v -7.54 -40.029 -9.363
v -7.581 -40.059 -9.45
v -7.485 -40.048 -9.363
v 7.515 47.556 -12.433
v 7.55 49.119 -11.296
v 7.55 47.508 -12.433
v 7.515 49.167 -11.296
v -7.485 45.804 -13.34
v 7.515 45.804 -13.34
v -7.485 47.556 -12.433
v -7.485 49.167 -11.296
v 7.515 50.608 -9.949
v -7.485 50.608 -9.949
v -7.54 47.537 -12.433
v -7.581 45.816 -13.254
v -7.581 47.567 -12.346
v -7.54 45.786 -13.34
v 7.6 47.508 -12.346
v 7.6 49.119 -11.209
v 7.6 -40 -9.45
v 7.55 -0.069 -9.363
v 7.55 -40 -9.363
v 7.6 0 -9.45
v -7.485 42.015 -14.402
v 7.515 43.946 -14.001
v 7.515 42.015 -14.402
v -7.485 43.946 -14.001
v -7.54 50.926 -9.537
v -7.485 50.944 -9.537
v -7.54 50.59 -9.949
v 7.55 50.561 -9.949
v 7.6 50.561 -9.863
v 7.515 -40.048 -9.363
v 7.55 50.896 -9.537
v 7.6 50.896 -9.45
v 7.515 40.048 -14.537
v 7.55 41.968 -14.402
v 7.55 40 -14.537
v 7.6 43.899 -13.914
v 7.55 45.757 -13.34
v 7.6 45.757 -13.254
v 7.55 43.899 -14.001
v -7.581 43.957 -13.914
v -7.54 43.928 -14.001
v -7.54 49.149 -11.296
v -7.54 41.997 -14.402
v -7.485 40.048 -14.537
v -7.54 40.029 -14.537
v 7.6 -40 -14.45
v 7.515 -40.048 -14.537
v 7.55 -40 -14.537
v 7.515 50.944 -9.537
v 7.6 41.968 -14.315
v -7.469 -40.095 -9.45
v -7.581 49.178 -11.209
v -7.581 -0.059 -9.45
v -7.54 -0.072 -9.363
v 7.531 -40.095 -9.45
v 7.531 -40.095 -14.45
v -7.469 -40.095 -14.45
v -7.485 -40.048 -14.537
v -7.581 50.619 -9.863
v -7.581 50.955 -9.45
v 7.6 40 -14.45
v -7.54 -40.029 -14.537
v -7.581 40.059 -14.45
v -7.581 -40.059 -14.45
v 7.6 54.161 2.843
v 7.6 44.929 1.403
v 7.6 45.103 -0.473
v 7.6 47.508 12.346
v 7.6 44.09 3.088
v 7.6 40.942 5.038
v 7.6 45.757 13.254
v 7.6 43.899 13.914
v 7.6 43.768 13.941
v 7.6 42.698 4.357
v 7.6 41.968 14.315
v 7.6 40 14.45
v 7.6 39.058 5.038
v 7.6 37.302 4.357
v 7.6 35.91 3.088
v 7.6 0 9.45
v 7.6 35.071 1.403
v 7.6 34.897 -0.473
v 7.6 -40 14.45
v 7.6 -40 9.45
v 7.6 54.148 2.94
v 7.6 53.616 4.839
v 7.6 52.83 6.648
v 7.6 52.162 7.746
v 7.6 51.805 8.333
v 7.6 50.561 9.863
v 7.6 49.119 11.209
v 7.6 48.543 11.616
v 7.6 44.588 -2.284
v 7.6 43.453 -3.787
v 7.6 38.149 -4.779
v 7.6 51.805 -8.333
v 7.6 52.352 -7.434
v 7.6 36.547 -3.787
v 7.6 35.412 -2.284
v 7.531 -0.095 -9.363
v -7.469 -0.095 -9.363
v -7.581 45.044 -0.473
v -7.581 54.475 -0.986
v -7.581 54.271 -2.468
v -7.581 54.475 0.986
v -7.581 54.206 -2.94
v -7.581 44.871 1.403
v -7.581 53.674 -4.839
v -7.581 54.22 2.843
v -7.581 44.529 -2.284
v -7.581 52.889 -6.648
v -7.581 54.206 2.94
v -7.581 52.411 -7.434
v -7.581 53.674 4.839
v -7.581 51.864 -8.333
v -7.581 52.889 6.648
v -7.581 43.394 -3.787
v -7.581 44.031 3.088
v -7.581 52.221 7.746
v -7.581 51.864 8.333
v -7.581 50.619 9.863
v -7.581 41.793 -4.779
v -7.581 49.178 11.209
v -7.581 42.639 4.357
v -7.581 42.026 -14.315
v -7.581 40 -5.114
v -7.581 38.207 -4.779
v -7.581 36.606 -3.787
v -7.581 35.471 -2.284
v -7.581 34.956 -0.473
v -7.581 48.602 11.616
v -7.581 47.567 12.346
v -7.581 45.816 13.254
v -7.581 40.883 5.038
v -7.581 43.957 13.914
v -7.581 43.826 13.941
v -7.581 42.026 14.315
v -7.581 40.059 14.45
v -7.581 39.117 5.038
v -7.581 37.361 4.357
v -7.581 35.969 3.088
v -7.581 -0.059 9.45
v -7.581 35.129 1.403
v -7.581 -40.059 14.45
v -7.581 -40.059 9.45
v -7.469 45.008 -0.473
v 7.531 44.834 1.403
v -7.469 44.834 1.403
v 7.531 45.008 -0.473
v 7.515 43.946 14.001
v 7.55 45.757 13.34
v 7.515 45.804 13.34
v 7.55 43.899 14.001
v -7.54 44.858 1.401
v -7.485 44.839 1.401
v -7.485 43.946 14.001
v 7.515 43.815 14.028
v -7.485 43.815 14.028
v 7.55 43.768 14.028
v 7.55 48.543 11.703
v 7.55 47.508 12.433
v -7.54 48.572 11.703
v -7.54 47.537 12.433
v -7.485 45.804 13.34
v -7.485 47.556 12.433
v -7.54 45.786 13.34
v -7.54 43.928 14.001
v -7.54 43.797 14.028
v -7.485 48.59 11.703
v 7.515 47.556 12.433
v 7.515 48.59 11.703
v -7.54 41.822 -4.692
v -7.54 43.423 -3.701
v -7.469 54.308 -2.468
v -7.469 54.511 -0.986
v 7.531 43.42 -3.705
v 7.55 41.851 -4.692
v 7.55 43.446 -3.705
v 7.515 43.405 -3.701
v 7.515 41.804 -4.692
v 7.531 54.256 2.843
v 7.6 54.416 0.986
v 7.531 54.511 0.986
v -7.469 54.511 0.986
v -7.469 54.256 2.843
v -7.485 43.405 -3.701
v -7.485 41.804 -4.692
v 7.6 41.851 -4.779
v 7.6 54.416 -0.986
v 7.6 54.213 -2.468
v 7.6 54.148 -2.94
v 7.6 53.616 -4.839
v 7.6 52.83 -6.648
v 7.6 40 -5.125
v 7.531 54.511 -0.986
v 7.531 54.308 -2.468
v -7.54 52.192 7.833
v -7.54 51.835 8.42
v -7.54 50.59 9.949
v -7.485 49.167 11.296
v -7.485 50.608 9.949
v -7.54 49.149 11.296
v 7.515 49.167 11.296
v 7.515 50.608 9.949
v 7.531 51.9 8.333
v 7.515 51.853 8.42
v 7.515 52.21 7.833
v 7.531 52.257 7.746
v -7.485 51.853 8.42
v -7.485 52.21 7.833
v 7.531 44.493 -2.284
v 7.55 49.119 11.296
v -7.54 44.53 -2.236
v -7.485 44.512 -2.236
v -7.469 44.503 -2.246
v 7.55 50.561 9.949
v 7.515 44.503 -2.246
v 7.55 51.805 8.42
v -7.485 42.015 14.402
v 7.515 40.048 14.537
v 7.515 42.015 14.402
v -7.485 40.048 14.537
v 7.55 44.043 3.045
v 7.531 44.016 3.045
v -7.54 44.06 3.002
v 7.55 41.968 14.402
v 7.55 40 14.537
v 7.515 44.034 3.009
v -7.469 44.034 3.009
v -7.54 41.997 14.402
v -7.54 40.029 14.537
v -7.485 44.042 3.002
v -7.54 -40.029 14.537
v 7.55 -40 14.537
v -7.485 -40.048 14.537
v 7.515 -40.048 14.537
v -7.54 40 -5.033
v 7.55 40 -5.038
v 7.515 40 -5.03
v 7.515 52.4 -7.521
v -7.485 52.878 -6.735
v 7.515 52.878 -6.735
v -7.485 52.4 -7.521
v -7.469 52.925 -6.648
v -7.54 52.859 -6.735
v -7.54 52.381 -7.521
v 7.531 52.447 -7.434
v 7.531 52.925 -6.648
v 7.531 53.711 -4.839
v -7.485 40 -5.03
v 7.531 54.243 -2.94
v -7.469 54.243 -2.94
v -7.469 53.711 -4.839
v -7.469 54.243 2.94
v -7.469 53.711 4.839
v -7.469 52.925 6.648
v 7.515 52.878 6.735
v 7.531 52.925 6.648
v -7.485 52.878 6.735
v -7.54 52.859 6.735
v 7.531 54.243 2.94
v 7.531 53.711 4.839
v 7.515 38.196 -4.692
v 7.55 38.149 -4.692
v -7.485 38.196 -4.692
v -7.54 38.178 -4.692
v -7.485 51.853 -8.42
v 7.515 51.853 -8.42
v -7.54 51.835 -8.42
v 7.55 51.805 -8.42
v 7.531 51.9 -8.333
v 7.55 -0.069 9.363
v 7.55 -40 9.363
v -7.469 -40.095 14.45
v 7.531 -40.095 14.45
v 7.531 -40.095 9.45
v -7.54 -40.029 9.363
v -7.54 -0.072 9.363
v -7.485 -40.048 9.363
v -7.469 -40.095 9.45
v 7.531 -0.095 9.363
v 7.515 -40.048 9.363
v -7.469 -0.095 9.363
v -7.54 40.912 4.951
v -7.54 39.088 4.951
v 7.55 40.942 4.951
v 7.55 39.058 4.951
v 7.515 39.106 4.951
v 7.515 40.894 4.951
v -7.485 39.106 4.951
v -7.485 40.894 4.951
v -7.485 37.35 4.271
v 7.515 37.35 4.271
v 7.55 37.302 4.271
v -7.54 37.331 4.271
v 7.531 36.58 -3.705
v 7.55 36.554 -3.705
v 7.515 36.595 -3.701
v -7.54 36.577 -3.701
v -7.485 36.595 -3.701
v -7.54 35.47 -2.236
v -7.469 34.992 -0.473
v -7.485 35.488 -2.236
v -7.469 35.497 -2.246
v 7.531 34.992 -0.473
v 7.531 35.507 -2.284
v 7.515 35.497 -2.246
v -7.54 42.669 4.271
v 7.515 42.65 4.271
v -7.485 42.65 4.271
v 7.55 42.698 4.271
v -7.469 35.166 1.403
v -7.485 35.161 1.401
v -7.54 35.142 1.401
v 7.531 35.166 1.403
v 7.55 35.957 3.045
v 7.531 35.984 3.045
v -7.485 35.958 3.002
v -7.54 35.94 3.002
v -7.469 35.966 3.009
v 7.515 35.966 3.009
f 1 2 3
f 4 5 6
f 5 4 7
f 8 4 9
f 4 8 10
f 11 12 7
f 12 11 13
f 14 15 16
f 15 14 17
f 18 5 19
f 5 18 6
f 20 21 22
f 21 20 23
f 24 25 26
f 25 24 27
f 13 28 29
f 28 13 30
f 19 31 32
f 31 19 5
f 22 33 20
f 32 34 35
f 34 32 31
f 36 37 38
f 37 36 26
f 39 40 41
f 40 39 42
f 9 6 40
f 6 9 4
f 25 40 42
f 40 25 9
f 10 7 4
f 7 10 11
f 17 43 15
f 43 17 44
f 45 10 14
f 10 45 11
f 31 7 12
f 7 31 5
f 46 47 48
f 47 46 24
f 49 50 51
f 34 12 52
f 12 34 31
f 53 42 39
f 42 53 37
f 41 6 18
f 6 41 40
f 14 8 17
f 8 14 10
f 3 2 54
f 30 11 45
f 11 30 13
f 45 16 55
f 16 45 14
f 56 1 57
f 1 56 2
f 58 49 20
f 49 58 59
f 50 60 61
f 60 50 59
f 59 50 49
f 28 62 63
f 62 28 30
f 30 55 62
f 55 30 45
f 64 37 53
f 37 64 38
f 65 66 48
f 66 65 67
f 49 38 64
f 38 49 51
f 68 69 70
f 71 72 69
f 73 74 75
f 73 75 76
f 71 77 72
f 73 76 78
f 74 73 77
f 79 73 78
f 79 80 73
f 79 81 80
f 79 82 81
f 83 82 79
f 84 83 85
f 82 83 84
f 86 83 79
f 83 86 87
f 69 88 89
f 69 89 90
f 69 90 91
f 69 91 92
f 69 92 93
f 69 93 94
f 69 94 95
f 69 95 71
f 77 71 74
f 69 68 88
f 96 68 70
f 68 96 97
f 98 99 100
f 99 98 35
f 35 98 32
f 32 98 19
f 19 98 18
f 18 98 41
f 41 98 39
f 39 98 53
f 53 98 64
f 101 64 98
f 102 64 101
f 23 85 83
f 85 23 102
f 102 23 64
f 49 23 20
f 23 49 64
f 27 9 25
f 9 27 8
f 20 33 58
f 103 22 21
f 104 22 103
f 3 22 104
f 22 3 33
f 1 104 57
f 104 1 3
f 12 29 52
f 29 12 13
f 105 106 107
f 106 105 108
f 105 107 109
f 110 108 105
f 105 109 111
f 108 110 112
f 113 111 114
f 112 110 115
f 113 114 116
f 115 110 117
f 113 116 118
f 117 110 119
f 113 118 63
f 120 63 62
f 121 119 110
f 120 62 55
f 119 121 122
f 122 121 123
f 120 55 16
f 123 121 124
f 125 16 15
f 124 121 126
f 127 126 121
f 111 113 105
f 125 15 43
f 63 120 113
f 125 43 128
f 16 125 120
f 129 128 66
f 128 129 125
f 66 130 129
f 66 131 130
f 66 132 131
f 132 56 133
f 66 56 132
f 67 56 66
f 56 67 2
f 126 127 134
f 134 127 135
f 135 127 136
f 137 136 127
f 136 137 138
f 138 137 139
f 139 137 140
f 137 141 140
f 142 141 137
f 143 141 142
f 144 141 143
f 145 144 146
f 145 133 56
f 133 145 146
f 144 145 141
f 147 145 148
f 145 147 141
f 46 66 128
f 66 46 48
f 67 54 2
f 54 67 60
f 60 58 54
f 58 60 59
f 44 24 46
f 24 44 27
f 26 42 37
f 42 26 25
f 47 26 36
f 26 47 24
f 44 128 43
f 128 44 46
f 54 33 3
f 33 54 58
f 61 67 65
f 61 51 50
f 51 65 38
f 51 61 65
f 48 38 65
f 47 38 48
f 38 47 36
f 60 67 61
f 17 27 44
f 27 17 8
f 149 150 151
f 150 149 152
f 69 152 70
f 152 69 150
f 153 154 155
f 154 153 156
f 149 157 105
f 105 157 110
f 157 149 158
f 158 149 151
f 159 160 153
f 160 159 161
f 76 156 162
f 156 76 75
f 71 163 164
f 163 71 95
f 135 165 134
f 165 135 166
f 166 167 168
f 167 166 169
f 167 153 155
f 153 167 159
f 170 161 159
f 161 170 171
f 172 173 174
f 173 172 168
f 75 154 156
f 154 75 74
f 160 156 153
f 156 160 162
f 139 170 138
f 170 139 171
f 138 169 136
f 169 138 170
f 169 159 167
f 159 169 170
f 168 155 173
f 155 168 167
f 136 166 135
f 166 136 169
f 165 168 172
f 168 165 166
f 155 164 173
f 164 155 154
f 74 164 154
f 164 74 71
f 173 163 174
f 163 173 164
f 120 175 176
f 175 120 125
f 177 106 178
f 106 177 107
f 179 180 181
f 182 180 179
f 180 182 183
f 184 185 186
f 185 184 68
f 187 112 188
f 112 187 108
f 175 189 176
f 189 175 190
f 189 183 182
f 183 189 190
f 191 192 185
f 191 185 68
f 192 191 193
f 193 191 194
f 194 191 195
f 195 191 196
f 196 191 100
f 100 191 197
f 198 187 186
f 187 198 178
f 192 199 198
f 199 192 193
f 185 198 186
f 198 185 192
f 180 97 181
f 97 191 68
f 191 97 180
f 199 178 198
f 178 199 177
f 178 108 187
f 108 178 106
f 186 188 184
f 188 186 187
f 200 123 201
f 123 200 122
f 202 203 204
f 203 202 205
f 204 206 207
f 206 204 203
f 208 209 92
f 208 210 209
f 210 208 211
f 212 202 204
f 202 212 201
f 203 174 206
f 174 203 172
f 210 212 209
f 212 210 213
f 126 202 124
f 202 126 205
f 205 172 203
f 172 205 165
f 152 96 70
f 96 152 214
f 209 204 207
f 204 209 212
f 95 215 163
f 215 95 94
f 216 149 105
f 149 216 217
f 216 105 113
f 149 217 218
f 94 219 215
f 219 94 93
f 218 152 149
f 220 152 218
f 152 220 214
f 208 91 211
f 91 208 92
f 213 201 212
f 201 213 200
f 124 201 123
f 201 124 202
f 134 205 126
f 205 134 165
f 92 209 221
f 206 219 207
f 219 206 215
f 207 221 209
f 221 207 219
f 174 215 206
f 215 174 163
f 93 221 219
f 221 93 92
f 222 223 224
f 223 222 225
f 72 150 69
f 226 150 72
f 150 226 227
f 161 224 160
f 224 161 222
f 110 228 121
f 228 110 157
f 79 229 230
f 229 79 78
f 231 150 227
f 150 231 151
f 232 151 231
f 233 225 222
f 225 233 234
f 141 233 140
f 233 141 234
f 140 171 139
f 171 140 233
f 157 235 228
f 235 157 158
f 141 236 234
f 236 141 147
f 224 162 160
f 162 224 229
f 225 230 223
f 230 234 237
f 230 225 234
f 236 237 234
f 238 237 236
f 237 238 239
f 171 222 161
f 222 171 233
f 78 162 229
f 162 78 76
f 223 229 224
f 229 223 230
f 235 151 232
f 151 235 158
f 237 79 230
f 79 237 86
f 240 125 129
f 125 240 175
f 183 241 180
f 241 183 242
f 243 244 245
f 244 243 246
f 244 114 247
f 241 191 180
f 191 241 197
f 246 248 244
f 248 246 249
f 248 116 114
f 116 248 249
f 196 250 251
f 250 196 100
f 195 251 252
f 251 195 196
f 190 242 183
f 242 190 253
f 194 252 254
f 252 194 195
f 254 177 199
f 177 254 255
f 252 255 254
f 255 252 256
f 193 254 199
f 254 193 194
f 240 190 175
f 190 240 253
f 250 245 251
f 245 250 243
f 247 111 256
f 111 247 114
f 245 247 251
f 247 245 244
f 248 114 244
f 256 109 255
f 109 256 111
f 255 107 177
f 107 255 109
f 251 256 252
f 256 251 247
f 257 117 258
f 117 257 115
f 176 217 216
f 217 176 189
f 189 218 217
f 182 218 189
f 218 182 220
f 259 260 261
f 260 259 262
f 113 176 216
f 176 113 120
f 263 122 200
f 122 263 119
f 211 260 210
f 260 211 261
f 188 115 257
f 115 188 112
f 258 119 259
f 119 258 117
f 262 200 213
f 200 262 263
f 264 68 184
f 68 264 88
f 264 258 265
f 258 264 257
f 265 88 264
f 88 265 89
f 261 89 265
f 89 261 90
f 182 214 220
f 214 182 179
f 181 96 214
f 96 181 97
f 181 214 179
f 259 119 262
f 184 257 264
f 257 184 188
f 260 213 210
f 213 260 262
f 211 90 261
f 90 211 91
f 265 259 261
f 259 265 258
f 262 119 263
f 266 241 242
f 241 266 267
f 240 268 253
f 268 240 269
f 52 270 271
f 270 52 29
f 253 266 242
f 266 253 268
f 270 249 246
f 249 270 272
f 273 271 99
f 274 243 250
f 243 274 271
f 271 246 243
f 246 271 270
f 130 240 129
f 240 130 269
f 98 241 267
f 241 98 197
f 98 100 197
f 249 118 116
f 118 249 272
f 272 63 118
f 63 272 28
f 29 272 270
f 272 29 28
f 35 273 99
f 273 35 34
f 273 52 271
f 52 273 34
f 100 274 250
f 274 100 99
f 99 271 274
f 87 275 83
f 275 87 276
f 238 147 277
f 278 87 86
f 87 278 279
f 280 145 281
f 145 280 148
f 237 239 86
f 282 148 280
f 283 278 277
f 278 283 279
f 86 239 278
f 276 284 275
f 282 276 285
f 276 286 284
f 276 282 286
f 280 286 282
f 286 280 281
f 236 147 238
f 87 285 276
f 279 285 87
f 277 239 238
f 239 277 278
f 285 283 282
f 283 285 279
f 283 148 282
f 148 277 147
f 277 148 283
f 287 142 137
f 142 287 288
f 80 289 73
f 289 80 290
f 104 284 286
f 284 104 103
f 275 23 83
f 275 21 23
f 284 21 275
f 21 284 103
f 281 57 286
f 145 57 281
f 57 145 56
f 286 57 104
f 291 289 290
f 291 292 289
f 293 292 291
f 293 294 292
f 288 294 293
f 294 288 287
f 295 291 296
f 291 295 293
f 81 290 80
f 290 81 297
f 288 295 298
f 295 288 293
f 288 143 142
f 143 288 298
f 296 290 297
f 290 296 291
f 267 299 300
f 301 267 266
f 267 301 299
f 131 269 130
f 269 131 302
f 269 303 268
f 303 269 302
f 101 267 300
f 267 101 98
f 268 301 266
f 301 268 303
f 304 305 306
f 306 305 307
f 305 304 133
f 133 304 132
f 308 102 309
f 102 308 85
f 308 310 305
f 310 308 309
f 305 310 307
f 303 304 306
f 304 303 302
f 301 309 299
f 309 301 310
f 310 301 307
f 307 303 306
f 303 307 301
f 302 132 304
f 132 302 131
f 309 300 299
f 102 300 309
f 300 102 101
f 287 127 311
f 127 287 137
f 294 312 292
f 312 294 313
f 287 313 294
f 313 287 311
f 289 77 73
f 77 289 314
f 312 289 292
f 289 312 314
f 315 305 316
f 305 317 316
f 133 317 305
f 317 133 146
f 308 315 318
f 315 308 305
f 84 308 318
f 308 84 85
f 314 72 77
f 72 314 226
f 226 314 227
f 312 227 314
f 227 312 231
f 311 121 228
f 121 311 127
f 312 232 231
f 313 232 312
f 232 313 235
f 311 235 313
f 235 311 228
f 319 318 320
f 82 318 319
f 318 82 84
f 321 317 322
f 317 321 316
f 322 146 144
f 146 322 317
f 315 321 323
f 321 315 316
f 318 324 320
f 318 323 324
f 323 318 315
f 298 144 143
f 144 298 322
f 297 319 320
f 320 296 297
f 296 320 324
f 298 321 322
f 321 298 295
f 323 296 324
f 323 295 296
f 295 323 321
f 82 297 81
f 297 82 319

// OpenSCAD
clamp_size = 5; // the thickness of above and below the table edge
ledge_height = 18.9; // size of edge to attach Z. This is size of the table/bench 
overall_height = ledge_height+(clamp_size*2); // Z
dowel_d = 10.25; // dowel diameter, give it 0.2-0.3 of space as the minkowski hits it
ledge_depth = 40; // how much clamp goes over the ledge y
dowel_to_edge = 40; // how far off the edge the dowel will sit in y
overall_depth = ledge_depth + dowel_to_edge; // y, not including round part
overall_width = 15; // width x, how wide the clamps are. 


// make the main body


minkowski(){ // do a bit of rounding overal the whole structure
    difference(){ // do the cutout clamp section. 
        union(){
            // this makes the clamp section 
            difference(){
                cube([overall_width,overall_depth,overall_height],  center=true);
                translate([0,-dowel_to_edge,0])
                cube([overall_width,overall_depth,ledge_height],center=true);
            }
 
            // this section makes the rounded end
            rotate([0,90,0])
            translate([0,overall_depth/2,0])
            cylinder(overall_width,r=overall_height/2,center=true,$fa=0.1);
        }
        // make the dowel cutout
        rotate([0,90,0])
        translate([0,overall_depth/2,0])
        cylinder(overall_width*2,r=dowel_d/2,center=true,$fa=0.1);
        }
    sphere(0.1); // minkowski the whole thing
}
